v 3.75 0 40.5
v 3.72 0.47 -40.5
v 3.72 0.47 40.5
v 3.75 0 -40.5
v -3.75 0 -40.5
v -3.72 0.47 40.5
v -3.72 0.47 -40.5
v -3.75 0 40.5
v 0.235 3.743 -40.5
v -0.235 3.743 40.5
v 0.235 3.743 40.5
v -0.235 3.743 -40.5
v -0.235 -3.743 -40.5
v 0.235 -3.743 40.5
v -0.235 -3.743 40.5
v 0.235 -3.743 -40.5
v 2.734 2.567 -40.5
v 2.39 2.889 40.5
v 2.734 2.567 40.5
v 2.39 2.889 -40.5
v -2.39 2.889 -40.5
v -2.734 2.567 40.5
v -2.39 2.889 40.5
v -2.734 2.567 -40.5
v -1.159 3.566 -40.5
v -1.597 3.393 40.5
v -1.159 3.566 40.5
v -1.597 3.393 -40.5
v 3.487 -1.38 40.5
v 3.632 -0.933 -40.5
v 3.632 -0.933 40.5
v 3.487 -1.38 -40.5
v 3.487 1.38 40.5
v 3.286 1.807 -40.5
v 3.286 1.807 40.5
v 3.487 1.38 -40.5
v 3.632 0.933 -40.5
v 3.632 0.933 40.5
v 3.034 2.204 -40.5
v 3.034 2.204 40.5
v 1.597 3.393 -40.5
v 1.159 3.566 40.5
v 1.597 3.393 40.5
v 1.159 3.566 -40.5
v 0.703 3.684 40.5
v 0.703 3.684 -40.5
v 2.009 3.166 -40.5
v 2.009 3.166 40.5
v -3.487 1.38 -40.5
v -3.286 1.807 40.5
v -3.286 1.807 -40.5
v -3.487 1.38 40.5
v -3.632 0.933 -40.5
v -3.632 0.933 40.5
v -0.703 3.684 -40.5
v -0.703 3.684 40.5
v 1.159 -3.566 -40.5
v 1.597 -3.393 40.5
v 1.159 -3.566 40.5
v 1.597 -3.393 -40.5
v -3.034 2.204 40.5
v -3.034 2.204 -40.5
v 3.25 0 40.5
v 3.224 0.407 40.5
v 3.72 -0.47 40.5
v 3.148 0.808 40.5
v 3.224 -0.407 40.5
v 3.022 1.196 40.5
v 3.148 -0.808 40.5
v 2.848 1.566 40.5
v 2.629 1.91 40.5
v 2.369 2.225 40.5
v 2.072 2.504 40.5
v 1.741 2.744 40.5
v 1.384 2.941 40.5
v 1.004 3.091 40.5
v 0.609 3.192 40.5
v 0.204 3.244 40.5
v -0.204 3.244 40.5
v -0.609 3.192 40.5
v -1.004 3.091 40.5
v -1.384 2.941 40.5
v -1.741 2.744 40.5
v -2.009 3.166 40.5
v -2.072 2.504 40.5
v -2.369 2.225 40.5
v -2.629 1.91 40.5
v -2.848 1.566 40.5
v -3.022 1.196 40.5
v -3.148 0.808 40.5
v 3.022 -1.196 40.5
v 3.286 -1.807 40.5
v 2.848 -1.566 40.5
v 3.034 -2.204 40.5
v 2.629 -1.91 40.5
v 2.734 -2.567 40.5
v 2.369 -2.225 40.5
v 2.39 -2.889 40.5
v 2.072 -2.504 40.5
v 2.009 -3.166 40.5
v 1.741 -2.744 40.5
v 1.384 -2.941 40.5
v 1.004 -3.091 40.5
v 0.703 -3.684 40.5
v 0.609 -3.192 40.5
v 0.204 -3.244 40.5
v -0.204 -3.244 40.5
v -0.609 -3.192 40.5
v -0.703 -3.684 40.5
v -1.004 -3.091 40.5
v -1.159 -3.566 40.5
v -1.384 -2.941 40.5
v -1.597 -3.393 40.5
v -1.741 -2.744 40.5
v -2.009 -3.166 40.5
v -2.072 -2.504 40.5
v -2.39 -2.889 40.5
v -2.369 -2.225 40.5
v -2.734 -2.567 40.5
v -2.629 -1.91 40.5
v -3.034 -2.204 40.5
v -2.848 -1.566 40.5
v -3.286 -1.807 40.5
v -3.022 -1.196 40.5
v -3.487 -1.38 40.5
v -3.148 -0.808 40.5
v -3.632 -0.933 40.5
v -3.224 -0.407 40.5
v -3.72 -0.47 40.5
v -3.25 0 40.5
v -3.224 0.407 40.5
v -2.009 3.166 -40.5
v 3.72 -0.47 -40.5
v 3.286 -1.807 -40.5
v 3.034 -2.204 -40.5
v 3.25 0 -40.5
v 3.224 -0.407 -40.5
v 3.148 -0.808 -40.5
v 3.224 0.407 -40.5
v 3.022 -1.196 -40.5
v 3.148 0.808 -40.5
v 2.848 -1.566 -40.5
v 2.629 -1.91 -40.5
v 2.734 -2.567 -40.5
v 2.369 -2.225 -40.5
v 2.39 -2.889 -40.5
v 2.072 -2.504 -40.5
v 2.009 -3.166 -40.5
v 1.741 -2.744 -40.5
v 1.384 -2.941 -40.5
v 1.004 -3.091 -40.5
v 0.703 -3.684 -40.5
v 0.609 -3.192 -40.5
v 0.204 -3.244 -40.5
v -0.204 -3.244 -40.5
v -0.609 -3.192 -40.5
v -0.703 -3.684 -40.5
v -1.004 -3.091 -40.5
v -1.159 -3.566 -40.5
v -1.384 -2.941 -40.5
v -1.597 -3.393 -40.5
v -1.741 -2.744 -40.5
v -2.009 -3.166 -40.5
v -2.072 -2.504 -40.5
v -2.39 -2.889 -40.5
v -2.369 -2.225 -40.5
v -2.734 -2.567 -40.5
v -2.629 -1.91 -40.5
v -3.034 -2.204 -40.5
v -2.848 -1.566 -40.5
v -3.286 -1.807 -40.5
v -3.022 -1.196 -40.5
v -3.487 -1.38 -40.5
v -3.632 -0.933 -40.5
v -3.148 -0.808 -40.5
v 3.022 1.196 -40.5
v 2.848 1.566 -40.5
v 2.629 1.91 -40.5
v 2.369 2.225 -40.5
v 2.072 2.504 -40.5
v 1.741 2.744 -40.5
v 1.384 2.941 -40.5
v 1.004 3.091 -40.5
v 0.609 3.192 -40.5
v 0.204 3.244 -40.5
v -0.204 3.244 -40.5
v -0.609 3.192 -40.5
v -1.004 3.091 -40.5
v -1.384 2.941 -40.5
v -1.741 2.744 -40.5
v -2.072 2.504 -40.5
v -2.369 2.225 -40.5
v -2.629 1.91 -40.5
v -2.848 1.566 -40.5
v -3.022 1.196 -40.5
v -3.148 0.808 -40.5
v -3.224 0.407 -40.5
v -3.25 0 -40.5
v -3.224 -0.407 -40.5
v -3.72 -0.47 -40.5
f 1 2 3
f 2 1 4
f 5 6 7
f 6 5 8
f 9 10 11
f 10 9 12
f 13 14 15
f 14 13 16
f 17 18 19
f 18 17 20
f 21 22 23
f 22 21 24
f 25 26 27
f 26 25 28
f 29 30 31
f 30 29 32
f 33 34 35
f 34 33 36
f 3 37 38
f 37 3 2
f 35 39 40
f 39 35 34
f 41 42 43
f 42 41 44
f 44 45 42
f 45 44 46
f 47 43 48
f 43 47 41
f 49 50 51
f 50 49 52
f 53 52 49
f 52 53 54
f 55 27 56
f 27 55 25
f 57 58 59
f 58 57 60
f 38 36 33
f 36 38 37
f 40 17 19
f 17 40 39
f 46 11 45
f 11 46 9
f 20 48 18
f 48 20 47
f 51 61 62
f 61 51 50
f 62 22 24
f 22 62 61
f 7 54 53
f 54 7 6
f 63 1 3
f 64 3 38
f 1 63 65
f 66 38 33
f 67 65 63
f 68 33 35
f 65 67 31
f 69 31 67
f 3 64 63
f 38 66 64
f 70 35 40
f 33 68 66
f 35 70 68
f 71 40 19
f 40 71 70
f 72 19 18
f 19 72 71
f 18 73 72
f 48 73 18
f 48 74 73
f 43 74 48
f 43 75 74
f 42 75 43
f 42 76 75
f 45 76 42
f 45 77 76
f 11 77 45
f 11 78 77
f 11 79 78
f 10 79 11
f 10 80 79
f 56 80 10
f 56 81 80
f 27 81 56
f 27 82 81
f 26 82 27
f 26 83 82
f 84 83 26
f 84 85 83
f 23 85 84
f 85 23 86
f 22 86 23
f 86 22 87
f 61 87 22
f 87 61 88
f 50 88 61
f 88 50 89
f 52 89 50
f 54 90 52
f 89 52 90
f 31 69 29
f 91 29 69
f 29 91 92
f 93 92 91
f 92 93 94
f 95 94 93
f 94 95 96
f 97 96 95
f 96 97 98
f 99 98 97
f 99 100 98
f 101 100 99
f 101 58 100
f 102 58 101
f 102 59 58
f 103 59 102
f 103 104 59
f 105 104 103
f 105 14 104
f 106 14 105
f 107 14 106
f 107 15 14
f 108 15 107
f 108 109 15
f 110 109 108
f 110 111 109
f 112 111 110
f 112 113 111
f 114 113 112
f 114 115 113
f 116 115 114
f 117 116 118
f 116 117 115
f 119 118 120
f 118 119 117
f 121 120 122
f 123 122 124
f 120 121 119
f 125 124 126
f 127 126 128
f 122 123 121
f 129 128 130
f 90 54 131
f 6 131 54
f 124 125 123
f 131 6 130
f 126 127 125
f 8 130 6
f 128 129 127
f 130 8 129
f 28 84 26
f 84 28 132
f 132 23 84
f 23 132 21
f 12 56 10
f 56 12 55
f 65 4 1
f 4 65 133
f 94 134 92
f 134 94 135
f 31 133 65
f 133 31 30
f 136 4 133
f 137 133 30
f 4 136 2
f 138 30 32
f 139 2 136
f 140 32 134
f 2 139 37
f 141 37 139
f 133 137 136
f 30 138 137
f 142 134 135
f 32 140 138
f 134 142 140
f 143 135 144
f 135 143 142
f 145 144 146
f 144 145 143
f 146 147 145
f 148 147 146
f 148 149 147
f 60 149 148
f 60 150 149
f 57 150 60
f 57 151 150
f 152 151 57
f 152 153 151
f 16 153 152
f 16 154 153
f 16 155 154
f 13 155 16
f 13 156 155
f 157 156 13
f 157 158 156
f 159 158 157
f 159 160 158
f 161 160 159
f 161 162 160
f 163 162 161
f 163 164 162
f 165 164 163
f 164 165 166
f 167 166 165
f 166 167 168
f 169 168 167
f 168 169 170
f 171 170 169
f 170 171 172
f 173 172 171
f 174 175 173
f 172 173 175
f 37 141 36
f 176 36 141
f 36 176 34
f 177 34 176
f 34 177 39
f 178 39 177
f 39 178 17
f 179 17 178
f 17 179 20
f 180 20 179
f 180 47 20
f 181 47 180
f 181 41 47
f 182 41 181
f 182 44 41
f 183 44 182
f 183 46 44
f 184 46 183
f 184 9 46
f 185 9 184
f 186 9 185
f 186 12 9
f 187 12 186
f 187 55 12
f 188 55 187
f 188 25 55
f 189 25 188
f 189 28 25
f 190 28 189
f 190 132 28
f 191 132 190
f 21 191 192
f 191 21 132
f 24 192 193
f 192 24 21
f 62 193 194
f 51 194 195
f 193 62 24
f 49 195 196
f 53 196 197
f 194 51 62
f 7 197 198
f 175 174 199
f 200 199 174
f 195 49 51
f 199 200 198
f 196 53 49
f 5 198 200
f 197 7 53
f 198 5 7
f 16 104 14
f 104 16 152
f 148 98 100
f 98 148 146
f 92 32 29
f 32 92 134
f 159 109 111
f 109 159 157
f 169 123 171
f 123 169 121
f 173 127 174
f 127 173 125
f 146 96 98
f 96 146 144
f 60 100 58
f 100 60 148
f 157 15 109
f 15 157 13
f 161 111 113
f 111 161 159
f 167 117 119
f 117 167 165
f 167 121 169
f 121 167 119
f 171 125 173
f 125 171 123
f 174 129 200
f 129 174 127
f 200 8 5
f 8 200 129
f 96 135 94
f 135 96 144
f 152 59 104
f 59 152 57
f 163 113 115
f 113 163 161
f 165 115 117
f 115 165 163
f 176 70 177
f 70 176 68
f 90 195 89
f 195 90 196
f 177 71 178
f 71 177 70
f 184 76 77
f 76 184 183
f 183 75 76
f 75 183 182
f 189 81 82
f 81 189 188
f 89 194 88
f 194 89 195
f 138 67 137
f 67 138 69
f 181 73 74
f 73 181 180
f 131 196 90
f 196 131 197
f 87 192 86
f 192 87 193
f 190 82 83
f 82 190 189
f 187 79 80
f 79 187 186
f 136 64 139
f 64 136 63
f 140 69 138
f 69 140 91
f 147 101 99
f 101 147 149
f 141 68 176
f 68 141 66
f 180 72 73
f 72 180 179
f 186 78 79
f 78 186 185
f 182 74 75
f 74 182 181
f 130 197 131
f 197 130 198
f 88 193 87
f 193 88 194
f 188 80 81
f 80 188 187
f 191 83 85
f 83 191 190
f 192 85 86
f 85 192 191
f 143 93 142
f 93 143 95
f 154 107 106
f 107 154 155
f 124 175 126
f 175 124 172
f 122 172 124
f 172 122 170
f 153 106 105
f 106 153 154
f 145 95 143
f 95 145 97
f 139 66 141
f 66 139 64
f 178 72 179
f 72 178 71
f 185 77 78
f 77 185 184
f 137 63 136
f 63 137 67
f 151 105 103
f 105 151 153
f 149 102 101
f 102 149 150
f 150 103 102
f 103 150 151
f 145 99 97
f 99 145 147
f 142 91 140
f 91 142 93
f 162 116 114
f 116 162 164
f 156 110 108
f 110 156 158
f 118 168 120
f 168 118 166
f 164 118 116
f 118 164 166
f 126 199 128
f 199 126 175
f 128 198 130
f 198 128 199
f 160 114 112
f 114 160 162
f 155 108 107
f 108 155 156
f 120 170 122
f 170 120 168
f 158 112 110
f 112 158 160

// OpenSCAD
$fn = 50;


difference() {
	union() {
		translate(v = [0, 0, -40.5000000000]) {
			cylinder(h = 81, r = 3.7500000000);
		}
	}
	union() {
		translate(v = [0, 0, -100.0000000000]) {
			cylinder(h = 200, r = 3.2500000000);
		}
	}
}
